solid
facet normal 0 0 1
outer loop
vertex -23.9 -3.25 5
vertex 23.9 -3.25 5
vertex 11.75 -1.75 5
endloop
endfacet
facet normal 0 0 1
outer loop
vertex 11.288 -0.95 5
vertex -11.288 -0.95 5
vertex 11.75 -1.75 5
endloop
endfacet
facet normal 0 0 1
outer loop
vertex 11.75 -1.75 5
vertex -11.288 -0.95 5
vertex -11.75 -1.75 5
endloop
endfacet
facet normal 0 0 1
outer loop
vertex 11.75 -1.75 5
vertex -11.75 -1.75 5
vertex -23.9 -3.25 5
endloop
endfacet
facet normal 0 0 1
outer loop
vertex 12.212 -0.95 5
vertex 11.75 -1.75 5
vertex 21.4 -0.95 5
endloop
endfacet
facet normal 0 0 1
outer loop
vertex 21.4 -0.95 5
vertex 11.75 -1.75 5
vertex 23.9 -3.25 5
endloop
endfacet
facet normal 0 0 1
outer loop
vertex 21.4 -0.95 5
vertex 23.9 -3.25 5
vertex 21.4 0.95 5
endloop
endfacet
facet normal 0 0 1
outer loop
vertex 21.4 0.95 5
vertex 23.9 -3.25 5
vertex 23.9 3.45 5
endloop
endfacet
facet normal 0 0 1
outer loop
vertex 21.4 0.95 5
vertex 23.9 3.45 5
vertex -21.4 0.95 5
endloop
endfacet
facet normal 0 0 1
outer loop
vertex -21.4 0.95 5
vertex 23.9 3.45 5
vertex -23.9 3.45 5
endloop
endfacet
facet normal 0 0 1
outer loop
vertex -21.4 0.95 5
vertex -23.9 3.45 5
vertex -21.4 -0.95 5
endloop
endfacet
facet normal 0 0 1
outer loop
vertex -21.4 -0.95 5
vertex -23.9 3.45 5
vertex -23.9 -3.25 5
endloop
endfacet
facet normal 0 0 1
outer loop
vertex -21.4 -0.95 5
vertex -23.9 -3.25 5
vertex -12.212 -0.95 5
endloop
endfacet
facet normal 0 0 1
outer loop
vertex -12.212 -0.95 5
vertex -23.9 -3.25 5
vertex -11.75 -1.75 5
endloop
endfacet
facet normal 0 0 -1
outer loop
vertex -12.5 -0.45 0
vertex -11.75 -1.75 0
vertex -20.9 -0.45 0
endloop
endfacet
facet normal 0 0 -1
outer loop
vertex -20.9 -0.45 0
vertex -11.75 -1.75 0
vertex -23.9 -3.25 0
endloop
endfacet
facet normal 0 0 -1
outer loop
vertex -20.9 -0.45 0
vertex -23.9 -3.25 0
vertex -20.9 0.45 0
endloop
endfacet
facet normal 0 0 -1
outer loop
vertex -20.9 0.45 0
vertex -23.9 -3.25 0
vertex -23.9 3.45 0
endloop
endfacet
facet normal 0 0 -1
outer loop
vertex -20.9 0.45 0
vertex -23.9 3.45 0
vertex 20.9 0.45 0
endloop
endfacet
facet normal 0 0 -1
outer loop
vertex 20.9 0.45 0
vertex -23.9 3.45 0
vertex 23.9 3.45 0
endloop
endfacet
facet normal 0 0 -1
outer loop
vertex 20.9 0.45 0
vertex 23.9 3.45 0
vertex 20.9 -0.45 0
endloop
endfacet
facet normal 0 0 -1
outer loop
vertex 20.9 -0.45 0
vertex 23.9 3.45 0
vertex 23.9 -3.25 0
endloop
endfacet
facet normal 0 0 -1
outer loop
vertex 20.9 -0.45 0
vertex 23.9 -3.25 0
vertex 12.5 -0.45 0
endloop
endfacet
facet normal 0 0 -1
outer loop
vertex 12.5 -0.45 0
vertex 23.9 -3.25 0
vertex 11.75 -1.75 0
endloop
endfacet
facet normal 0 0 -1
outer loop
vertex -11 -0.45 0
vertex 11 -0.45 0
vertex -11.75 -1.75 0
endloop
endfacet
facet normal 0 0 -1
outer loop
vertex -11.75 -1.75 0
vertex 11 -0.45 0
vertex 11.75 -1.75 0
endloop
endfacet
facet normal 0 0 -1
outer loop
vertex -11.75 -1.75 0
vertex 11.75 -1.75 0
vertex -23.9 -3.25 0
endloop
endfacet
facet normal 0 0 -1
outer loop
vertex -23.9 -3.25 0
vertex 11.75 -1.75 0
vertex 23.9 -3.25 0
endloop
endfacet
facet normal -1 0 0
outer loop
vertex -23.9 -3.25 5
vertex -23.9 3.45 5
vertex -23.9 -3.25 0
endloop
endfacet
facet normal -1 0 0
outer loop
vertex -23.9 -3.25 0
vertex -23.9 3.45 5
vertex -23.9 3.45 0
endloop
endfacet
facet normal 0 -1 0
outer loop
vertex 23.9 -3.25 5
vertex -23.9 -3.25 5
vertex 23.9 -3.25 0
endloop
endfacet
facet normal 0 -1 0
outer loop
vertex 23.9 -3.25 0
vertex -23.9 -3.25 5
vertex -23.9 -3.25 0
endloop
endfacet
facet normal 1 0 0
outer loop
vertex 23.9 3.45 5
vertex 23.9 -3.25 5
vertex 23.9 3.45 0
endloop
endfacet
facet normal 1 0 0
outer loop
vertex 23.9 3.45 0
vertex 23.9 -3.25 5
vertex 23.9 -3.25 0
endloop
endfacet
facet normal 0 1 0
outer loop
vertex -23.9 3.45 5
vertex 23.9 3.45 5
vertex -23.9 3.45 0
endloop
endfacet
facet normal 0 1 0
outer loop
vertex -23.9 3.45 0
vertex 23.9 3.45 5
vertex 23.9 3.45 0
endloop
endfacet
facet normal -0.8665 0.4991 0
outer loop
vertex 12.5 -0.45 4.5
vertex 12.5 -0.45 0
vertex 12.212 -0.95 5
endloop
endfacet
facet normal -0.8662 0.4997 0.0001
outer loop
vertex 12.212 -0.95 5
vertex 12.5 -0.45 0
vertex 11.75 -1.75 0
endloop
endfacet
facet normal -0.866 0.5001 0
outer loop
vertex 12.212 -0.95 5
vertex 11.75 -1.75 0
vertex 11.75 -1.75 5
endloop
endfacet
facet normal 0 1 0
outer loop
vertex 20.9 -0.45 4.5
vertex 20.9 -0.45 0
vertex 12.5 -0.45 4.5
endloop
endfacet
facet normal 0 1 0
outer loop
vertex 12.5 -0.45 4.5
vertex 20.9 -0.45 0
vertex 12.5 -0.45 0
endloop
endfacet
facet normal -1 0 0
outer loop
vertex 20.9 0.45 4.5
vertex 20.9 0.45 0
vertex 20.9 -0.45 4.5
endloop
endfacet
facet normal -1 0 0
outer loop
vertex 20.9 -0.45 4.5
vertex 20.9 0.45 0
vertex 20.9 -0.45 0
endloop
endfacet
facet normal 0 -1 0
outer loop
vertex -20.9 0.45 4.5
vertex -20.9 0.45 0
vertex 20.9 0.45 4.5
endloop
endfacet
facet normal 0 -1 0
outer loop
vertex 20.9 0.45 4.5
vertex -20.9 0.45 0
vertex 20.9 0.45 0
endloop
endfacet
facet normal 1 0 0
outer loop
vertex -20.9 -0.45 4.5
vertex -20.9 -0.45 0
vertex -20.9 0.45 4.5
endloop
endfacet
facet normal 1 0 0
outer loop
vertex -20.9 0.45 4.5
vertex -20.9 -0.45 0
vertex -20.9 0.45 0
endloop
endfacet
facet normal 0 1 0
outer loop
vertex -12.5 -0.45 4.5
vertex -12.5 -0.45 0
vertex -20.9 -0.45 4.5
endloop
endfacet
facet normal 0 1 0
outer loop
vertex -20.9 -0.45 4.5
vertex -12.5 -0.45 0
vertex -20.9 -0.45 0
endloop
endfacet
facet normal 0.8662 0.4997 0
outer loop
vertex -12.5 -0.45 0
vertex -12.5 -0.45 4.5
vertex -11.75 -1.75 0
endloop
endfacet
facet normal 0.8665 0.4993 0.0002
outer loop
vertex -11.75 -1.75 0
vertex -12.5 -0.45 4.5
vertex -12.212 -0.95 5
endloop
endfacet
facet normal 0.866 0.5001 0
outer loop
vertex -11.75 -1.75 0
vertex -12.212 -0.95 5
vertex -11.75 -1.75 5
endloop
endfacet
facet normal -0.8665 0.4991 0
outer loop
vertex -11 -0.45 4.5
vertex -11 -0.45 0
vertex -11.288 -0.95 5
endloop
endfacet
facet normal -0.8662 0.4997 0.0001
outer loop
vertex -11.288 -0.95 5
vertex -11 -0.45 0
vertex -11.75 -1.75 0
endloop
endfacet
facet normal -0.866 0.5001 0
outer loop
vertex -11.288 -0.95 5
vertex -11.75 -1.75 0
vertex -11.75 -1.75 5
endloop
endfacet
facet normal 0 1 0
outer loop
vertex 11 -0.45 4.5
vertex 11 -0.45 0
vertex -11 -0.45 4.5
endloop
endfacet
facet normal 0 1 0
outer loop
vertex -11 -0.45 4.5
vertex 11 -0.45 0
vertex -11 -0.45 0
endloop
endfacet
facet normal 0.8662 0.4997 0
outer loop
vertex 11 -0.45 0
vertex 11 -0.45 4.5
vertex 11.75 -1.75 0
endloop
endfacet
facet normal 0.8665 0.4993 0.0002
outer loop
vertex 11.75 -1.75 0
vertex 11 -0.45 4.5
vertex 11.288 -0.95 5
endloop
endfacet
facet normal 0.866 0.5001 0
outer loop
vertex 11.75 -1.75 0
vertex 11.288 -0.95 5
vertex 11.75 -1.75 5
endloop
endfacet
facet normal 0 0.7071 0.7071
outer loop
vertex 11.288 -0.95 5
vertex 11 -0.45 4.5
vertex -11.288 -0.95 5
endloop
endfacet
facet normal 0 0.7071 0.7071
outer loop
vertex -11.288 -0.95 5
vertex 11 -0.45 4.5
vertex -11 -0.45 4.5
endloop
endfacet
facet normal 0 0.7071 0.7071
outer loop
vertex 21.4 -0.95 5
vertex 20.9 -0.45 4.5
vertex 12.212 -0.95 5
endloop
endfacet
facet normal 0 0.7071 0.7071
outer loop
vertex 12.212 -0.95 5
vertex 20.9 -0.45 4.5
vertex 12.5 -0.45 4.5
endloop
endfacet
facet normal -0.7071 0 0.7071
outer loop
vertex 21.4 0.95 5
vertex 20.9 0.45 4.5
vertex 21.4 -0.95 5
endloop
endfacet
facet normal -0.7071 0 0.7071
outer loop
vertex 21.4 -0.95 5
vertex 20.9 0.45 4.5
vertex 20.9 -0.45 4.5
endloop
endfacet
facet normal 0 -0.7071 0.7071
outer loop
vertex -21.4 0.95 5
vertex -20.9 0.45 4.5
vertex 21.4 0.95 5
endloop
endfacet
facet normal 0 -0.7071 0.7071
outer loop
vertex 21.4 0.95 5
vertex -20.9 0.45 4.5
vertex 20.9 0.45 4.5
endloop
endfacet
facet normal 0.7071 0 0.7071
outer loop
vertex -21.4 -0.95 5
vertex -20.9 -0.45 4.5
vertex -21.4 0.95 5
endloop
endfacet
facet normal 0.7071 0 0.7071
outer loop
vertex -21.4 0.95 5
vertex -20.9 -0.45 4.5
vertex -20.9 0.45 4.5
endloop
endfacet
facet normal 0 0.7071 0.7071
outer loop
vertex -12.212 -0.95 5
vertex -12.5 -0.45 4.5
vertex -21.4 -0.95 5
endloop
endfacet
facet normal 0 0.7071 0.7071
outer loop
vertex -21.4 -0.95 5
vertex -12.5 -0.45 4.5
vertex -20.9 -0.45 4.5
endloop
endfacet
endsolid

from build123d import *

# Parameters (mm, degrees)
SKETCH_1_W      = 47.8
SKETCH_1_H      = 6.7
EXTRUDE_1_DEPTH = 5
CHAMFER_1_SIZE  = 0.5


with BuildPart() as part:
    # Эскиз1 → Бобышка-Вытянуть1 (new body)
    with BuildSketch(Plane(origin=(0, 66.754264805, 0), x_dir=(-1, 0, 0), z_dir=(0, 0, 1))):
        with Locations((0, 66.654264805)):
            Rectangle(SKETCH_1_W, SKETCH_1_H)
        Polygon((-20.9, 67.204264805), (-20.9, 66.304264805), (20.9, 66.304264805), (20.9, 67.204264805), (12.5, 67.204264805), (11.75, 68.504264805), (11, 67.204264805), (-11, 67.204264805), (-11.75, 68.504264805), (-12.5, 67.204264805), align=None, mode=Mode.SUBTRACT)
    extrude(amount=EXTRUDE_1_DEPTH)

    # Фаска1
    chamfer_1_edges = [part.edges().sort_by_distance(p)[0] for p in [
        (16.7, -0.45, 5),
        (20.9, 0, 5),
        (0, 0.45, 5),
        (-20.9, 0, 5),
        (-16.7, -0.45, 5),
        (0, -0.45, 5),
    ]]
    chamfer(chamfer_1_edges, length=CHAMFER_1_SIZE)


solid = part.part
